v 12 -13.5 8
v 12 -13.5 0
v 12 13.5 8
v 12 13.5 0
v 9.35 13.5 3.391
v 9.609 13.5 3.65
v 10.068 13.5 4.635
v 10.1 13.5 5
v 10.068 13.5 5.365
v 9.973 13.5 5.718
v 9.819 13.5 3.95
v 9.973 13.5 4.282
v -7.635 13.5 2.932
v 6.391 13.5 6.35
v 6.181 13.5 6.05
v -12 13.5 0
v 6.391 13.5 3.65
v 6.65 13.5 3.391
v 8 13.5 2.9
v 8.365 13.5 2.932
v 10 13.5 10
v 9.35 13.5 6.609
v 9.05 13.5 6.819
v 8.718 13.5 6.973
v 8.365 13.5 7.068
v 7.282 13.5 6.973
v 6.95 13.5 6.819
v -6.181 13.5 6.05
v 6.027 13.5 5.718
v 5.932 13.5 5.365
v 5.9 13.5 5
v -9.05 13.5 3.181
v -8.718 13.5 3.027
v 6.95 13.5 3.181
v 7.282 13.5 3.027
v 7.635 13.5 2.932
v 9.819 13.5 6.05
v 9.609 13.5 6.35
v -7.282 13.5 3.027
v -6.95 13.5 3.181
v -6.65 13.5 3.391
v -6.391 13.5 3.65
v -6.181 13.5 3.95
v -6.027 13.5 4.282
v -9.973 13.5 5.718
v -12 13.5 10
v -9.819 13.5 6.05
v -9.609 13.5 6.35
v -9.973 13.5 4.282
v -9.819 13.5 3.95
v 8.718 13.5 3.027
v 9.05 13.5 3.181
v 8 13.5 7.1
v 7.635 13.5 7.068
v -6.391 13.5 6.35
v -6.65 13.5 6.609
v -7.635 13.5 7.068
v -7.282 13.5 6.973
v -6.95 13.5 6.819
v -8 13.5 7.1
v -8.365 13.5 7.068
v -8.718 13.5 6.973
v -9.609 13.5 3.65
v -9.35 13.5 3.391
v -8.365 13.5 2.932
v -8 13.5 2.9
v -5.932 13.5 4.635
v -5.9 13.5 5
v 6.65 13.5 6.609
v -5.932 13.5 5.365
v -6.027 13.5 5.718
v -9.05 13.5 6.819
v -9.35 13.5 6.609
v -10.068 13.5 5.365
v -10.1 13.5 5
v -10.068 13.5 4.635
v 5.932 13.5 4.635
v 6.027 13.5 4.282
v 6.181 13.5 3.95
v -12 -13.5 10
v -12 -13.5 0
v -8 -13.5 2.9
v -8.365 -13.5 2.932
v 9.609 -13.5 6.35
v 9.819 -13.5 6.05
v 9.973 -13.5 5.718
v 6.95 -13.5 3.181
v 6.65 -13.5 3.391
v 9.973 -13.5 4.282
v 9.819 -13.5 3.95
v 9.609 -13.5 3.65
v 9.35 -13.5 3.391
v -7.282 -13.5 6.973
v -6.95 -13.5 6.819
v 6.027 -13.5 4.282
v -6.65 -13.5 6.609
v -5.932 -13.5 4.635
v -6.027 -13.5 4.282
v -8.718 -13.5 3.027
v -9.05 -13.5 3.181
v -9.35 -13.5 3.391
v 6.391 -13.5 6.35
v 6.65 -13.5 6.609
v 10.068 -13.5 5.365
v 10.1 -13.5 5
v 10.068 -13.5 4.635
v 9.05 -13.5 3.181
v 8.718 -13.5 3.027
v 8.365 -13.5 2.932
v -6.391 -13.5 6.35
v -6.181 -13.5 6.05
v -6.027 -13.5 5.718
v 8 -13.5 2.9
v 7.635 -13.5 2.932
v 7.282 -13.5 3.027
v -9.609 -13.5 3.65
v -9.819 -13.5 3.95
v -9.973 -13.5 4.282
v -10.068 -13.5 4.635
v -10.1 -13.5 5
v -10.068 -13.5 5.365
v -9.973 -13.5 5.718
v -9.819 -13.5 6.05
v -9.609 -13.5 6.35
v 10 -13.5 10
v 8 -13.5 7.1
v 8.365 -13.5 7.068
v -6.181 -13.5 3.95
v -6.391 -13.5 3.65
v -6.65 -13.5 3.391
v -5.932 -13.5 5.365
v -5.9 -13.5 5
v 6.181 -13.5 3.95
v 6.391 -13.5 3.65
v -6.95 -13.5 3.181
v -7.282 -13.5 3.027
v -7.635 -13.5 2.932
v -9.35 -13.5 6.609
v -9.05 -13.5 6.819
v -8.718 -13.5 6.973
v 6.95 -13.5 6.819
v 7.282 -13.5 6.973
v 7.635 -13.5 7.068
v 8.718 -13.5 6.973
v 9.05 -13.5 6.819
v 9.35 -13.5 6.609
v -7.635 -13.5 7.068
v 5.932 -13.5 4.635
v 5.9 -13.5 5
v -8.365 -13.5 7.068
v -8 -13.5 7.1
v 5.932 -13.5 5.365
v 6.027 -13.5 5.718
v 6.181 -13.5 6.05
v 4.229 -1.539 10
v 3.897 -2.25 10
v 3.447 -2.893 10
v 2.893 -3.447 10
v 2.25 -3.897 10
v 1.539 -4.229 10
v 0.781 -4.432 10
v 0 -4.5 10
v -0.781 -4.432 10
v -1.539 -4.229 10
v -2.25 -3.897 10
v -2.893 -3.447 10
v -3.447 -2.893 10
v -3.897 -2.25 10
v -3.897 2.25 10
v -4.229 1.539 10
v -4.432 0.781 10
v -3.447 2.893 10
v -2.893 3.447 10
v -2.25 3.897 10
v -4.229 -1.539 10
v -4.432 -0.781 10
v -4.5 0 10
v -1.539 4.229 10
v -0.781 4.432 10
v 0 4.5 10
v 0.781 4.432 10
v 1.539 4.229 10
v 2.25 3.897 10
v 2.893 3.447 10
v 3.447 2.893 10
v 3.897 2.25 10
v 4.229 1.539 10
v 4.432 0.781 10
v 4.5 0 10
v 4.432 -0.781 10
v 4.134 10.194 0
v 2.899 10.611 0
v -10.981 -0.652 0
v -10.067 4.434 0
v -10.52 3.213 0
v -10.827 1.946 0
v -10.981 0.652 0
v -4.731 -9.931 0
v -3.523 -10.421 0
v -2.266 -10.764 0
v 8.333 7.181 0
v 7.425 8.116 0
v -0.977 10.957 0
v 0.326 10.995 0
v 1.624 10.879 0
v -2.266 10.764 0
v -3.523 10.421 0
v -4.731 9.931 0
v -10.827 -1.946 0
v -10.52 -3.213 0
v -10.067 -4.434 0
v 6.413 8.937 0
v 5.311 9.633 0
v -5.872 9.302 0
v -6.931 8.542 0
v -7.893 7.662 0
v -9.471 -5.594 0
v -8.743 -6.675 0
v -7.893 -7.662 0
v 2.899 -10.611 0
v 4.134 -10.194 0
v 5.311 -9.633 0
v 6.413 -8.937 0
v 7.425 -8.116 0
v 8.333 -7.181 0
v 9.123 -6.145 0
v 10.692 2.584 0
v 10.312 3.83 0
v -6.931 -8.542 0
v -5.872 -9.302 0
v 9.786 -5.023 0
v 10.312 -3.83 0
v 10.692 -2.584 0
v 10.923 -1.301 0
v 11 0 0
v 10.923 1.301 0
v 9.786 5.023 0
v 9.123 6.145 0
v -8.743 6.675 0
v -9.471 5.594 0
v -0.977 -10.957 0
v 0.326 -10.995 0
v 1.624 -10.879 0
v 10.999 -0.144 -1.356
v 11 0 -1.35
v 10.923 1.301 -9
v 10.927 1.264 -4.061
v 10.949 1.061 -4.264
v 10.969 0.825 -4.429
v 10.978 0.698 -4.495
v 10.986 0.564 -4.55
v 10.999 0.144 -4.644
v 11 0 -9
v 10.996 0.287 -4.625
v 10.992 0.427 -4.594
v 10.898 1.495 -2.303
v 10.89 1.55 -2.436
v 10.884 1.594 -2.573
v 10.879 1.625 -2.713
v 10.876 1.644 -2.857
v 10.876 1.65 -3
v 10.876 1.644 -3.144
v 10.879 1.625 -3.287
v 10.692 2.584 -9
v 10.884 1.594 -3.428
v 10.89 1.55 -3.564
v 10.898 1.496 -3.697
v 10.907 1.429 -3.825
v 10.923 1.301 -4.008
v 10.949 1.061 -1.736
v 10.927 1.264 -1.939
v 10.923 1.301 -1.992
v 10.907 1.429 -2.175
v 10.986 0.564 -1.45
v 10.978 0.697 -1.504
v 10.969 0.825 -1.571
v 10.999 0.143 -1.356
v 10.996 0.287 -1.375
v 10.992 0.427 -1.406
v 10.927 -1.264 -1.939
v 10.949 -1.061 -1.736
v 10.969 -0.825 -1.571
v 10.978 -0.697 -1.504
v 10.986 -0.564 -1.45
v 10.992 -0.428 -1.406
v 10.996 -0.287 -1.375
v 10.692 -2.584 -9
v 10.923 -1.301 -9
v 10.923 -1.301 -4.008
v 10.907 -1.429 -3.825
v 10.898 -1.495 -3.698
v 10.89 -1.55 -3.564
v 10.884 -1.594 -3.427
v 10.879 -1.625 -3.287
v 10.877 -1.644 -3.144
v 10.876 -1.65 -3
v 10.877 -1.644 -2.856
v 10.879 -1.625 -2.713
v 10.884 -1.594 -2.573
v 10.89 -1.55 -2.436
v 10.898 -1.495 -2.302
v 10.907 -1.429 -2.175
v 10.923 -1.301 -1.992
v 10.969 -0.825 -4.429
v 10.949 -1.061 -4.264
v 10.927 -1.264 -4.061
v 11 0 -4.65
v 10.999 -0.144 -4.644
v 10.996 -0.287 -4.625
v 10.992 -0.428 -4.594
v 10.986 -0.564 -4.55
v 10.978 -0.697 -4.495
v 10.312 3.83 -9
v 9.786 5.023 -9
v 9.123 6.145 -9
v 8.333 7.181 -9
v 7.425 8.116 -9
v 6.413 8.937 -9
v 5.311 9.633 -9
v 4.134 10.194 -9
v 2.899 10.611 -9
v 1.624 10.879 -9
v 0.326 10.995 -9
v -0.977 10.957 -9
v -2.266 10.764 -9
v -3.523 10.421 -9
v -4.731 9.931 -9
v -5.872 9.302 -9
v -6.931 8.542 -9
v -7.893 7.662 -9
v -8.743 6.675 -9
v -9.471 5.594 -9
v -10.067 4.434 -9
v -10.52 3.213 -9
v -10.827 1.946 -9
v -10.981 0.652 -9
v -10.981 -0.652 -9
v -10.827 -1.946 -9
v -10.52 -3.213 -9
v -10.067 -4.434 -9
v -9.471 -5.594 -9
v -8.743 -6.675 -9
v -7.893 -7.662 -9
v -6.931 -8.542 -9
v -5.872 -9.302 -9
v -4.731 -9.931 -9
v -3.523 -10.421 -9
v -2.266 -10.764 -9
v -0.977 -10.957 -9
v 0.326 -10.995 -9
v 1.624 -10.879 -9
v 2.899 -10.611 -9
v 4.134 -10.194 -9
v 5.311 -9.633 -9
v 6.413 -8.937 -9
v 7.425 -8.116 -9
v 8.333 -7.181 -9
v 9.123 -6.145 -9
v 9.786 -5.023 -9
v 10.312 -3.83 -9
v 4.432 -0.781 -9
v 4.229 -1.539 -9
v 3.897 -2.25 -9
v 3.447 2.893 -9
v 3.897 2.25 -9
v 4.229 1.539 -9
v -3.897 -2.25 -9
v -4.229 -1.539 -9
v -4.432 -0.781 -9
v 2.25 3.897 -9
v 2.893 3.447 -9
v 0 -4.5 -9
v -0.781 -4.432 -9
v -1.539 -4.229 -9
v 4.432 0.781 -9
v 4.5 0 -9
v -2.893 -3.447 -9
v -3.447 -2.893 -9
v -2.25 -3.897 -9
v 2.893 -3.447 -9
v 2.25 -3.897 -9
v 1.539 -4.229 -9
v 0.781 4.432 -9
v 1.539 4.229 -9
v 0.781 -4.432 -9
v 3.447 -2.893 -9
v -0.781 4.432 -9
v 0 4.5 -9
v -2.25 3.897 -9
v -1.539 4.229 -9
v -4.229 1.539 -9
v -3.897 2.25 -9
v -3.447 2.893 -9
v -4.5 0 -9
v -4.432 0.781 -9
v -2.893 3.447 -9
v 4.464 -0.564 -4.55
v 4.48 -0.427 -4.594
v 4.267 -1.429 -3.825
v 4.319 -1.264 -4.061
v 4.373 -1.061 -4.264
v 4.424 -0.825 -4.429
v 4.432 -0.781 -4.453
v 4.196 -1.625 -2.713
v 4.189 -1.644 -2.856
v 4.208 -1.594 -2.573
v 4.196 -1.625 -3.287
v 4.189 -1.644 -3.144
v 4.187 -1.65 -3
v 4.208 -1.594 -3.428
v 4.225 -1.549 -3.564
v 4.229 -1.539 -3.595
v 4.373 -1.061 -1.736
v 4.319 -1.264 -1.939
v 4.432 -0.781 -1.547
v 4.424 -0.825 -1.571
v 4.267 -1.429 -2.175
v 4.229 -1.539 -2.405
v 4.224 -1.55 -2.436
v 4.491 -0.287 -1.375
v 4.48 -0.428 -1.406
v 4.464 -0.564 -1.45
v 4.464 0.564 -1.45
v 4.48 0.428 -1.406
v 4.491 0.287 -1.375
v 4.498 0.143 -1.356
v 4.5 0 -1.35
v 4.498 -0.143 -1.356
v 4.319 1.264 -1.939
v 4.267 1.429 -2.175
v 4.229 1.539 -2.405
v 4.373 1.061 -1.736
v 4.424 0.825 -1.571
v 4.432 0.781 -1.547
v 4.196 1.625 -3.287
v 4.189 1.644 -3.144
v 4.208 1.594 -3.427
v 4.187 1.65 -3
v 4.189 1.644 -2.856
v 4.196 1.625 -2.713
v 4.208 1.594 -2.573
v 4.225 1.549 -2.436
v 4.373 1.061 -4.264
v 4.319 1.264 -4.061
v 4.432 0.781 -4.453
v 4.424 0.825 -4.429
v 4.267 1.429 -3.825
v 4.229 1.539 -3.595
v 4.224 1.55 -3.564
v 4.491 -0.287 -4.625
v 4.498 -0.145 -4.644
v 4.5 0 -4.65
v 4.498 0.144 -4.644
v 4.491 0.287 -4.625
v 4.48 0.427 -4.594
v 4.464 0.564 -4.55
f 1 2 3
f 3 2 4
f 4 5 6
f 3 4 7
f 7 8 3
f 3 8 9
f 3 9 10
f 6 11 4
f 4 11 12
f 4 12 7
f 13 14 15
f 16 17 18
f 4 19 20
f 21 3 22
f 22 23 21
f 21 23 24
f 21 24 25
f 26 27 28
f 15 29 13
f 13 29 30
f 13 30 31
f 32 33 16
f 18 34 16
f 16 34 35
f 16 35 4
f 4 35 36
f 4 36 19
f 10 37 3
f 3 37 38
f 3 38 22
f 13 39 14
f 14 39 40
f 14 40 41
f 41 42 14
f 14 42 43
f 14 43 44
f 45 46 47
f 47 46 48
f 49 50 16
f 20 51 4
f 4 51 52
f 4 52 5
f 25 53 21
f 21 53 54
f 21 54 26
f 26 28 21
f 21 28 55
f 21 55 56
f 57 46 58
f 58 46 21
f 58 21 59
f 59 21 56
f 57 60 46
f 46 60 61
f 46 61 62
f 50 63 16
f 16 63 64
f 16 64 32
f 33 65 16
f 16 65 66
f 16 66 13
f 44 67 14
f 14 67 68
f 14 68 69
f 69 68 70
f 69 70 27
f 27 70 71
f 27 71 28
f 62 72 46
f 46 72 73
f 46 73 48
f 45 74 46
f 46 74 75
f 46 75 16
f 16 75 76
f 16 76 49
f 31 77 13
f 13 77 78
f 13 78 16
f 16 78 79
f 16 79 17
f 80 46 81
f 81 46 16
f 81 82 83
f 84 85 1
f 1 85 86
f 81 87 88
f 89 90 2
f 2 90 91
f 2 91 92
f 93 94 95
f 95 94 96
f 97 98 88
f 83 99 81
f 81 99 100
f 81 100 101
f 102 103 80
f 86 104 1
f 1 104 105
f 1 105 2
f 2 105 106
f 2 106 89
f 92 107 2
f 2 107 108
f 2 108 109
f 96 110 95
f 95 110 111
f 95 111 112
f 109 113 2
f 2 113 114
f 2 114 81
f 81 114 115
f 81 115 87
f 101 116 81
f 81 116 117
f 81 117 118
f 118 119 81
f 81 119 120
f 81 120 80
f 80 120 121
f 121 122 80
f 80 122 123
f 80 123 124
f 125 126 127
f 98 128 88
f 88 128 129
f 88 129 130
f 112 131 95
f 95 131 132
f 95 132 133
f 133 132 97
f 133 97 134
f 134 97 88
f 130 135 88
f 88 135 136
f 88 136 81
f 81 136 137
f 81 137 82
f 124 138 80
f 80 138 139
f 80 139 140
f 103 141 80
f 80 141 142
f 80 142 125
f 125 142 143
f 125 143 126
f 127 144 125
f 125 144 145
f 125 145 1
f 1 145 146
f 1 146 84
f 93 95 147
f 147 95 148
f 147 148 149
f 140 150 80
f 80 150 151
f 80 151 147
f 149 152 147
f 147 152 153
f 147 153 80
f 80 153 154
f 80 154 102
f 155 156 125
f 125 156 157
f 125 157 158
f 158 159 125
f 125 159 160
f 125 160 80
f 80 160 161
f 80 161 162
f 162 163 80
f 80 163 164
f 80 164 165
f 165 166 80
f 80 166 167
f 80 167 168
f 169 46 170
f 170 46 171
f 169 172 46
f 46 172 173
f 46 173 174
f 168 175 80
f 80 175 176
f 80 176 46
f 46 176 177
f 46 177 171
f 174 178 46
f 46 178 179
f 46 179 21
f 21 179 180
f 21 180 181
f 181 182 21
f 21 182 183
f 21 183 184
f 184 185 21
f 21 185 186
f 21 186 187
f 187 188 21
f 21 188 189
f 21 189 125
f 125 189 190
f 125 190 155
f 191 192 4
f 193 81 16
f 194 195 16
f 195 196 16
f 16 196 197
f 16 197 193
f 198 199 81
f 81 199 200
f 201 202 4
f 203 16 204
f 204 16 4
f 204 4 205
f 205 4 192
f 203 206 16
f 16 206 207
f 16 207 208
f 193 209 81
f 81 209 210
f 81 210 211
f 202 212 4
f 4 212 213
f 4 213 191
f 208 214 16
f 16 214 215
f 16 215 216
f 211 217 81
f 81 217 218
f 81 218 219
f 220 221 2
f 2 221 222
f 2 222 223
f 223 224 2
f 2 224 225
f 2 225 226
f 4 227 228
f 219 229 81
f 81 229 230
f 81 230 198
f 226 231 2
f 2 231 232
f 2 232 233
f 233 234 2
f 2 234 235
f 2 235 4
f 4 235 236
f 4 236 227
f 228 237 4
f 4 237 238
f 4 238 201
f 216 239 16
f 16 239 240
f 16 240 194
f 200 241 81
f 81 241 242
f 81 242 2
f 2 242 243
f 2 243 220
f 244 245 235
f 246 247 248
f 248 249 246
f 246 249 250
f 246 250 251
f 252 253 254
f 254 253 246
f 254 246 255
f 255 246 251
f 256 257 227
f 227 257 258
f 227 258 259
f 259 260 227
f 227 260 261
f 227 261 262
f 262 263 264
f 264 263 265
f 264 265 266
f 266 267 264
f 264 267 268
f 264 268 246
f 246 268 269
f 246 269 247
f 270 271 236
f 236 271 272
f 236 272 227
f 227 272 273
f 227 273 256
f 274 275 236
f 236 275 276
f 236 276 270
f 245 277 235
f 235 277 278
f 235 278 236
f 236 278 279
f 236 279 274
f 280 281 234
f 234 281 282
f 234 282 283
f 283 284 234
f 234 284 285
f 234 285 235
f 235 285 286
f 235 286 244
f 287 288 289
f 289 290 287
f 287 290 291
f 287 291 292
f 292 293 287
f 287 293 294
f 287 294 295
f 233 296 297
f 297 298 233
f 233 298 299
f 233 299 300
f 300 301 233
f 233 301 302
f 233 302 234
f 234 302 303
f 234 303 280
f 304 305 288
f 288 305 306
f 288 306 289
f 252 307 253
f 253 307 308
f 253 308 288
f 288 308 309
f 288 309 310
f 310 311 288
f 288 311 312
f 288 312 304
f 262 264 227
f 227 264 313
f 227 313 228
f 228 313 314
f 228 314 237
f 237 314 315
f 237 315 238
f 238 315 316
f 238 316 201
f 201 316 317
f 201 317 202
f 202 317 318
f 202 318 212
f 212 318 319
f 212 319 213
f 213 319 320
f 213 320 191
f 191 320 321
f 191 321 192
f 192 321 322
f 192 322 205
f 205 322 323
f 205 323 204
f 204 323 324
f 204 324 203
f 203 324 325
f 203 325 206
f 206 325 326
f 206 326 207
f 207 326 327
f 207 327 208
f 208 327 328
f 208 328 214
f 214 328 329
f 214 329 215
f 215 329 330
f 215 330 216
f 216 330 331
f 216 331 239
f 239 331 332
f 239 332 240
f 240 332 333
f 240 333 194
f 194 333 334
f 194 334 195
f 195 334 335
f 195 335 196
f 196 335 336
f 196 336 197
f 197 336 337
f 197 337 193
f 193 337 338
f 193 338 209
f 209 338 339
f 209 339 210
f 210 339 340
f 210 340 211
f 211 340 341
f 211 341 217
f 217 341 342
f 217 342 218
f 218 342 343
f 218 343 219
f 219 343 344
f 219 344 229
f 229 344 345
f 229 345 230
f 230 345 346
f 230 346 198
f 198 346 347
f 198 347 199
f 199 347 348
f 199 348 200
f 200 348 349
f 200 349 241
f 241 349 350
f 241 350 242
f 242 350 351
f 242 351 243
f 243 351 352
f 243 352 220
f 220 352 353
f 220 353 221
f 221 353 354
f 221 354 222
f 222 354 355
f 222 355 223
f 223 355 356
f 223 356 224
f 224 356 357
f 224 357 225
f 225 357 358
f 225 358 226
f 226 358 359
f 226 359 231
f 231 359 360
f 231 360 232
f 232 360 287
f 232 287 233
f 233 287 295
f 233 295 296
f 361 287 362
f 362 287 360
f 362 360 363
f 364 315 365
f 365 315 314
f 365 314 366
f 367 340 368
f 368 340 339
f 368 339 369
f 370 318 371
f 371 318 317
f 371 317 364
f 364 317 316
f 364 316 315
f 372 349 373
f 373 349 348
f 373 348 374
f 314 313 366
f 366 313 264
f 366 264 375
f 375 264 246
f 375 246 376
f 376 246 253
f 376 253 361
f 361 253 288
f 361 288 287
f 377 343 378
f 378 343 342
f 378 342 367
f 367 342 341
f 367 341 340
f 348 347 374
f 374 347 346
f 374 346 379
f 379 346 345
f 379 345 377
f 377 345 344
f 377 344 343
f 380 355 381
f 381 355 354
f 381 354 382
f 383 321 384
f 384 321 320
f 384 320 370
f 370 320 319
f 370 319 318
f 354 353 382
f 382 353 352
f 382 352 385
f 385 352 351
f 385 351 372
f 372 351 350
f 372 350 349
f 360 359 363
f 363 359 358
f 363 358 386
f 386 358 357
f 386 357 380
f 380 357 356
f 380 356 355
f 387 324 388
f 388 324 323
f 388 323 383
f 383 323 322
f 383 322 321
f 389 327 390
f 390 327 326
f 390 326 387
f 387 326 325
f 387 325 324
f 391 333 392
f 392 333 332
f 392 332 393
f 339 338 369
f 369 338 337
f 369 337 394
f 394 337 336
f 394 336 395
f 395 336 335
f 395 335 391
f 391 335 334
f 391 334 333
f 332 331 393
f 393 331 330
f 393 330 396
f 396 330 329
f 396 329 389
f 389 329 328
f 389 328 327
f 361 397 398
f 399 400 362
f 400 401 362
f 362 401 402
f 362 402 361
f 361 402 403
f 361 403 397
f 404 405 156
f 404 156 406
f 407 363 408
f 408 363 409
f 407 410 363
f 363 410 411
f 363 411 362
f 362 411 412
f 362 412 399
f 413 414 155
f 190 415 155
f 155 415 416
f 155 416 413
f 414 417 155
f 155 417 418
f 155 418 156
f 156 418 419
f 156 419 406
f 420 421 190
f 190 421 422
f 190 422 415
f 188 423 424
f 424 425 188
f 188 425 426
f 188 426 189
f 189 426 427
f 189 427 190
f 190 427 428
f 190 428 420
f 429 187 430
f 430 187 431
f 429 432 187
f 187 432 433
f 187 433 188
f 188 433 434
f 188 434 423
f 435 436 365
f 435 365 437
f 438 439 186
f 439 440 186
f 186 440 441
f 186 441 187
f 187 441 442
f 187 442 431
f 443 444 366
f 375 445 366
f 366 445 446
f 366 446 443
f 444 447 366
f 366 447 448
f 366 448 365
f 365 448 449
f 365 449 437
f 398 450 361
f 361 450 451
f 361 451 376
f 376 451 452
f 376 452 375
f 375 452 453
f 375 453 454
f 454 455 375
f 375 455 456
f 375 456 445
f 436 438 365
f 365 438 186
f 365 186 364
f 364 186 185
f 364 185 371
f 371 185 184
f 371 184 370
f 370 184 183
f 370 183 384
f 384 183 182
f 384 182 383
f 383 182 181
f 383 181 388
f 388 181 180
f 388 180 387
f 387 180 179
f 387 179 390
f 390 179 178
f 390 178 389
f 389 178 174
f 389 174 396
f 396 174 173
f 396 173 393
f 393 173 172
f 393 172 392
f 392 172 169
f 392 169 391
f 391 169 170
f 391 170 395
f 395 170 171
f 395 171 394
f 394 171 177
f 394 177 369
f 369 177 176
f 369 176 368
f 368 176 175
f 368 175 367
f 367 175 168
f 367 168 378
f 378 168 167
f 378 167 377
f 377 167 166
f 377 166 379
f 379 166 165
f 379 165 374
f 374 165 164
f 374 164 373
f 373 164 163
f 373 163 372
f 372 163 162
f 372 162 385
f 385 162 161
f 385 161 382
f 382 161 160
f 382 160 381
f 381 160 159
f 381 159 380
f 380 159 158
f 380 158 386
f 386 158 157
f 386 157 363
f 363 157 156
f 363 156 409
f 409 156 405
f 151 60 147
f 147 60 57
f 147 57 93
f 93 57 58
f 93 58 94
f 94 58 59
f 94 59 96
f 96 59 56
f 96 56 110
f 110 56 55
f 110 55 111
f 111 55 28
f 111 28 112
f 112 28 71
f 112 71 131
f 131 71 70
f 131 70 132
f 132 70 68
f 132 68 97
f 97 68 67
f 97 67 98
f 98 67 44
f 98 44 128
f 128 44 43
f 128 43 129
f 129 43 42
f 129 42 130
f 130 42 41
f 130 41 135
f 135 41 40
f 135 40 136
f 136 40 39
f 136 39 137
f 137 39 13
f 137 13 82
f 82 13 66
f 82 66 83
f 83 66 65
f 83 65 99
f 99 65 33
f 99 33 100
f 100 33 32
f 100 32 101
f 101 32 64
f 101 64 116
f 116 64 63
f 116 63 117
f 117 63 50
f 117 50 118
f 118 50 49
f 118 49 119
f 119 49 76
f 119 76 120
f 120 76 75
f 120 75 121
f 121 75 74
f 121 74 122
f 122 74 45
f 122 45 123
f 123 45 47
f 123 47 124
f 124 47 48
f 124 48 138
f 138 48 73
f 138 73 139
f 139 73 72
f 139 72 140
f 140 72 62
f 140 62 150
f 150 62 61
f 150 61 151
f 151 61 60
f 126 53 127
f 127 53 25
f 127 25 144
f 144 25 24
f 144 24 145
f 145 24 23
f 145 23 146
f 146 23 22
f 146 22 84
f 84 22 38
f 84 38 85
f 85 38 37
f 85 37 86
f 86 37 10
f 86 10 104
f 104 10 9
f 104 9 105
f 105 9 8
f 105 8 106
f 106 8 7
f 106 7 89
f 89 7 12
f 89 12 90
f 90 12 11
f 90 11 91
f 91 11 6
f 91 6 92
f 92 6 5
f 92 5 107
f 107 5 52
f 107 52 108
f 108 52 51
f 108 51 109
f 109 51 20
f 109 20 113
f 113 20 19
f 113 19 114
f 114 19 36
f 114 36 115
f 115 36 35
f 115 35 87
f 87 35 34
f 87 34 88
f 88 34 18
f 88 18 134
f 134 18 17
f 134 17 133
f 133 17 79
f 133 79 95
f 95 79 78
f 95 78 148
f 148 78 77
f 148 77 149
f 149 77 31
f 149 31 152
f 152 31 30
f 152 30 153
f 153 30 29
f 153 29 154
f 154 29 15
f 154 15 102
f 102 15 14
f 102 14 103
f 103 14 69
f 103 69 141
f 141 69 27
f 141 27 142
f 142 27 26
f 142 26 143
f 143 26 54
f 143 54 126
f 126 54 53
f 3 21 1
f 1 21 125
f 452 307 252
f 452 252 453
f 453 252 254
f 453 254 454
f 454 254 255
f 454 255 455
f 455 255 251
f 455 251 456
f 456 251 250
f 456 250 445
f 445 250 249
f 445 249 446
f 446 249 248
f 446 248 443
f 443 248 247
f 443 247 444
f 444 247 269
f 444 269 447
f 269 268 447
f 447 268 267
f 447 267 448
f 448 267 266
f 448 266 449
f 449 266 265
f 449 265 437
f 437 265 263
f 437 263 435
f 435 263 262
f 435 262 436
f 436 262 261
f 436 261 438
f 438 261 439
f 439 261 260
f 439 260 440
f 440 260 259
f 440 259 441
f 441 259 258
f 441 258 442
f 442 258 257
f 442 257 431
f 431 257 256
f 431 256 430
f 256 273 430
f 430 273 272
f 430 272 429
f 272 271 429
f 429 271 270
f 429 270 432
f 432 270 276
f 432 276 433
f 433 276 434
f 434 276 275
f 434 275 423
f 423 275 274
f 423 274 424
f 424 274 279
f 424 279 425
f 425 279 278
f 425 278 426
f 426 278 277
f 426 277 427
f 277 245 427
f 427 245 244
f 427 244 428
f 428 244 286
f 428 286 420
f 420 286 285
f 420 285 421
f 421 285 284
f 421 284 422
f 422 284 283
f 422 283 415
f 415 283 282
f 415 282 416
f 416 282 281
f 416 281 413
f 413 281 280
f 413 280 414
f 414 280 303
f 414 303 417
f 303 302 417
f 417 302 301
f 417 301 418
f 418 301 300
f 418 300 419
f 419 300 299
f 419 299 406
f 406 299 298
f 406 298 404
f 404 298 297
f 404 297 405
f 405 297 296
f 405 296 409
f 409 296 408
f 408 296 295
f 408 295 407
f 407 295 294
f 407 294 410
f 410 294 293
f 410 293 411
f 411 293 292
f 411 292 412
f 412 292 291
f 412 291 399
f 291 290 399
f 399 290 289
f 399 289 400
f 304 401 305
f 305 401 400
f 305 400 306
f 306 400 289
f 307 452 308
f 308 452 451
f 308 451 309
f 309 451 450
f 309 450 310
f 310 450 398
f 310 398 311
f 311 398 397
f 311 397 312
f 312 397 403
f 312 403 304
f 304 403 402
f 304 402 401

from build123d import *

# Parameters (mm, degrees)
SKETCH_1_W             = 24
SKETCH_1_H             = 27
EXTRUDE_1_DEPTH        = 10
SKETCH_2_R             = 11
SKETCH_2_R_2           = 4.5
EXTRUDE_2_DEPTH        = 9
CUT_EXTRUDE_START      = -41
SKETCH_3_R             = 4.5
CUT_EXTRUDE_1_DEPTH    = 41
SKETCH_4_R             = 2.1
CUT_EXTRUDE_2_DEPTH    = 37.013519789
CHAMFER_1_SIZE         = 2
HOLE_WIZARD_M4_1_D     = 3.3
HOLE_WIZARD_M4_1_DEPTH = 11.5
HOLE_WIZARD_M4_1_TIP   = 0.991420021


with BuildPart() as part:
    # 草图1 → 凸台-拉伸1 (new body)
    with BuildSketch(Plane.XY):
        Rectangle(SKETCH_1_W, SKETCH_1_H)
    extrude(amount=EXTRUDE_1_DEPTH)

    # 草图2 → 凸台-拉伸2 (add)
    with BuildSketch(Plane.XY):
        Circle(SKETCH_2_R)
        Circle(SKETCH_2_R_2, mode=Mode.SUBTRACT)
    extrude(amount=-EXTRUDE_2_DEPTH)

    # 草图3 → 切除-拉伸1 (cut)
    with BuildSketch(Plane(origin=(0, 0, 0), x_dir=(-1, 0, 0), z_dir=(0, 0, -1)).offset(CUT_EXTRUDE_START)):
        with Locations(Location((0, 0, 0), (0, 0, 180))):
            Circle(SKETCH_3_R)
    extrude(amount=CUT_EXTRUDE_1_DEPTH, mode=Mode.SUBTRACT)

    # 草图4 → 切除-拉伸2 (cut)
    with BuildSketch(Plane(origin=(0, 13.5, 0), x_dir=(1, 0, 0), z_dir=(0, 1, 0))):
        with Locations(Location((-8, -5, 0), (0, 0, 270))):
            Circle(SKETCH_4_R)
        with Locations(Location((8, -5, 0), (0, 0, 270))):
            Circle(SKETCH_4_R)
    extrude(amount=-CUT_EXTRUDE_2_DEPTH, mode=Mode.SUBTRACT)

    # 倒角1
    chamfer_1_edges = [part.edges().sort_by_distance(p)[0] for p in [
        (12, 0, 10),
    ]]
    chamfer(chamfer_1_edges, length=CHAMFER_1_SIZE)

    # M4 螺纹孔1
    with Locations(Plane(origin=(11, 0, 0), x_dir=(0, 0, -1), z_dir=(1, 0, 0))):
        with Locations((3, 0)):
            Hole(HOLE_WIZARD_M4_1_D / 2, depth=HOLE_WIZARD_M4_1_DEPTH)
            with Locations((0, 0, -(HOLE_WIZARD_M4_1_DEPTH + HOLE_WIZARD_M4_1_TIP / 2))):  # 118° drill point
                Cone(0, HOLE_WIZARD_M4_1_D / 2, HOLE_WIZARD_M4_1_TIP, mode=Mode.SUBTRACT)


solid = part.part
